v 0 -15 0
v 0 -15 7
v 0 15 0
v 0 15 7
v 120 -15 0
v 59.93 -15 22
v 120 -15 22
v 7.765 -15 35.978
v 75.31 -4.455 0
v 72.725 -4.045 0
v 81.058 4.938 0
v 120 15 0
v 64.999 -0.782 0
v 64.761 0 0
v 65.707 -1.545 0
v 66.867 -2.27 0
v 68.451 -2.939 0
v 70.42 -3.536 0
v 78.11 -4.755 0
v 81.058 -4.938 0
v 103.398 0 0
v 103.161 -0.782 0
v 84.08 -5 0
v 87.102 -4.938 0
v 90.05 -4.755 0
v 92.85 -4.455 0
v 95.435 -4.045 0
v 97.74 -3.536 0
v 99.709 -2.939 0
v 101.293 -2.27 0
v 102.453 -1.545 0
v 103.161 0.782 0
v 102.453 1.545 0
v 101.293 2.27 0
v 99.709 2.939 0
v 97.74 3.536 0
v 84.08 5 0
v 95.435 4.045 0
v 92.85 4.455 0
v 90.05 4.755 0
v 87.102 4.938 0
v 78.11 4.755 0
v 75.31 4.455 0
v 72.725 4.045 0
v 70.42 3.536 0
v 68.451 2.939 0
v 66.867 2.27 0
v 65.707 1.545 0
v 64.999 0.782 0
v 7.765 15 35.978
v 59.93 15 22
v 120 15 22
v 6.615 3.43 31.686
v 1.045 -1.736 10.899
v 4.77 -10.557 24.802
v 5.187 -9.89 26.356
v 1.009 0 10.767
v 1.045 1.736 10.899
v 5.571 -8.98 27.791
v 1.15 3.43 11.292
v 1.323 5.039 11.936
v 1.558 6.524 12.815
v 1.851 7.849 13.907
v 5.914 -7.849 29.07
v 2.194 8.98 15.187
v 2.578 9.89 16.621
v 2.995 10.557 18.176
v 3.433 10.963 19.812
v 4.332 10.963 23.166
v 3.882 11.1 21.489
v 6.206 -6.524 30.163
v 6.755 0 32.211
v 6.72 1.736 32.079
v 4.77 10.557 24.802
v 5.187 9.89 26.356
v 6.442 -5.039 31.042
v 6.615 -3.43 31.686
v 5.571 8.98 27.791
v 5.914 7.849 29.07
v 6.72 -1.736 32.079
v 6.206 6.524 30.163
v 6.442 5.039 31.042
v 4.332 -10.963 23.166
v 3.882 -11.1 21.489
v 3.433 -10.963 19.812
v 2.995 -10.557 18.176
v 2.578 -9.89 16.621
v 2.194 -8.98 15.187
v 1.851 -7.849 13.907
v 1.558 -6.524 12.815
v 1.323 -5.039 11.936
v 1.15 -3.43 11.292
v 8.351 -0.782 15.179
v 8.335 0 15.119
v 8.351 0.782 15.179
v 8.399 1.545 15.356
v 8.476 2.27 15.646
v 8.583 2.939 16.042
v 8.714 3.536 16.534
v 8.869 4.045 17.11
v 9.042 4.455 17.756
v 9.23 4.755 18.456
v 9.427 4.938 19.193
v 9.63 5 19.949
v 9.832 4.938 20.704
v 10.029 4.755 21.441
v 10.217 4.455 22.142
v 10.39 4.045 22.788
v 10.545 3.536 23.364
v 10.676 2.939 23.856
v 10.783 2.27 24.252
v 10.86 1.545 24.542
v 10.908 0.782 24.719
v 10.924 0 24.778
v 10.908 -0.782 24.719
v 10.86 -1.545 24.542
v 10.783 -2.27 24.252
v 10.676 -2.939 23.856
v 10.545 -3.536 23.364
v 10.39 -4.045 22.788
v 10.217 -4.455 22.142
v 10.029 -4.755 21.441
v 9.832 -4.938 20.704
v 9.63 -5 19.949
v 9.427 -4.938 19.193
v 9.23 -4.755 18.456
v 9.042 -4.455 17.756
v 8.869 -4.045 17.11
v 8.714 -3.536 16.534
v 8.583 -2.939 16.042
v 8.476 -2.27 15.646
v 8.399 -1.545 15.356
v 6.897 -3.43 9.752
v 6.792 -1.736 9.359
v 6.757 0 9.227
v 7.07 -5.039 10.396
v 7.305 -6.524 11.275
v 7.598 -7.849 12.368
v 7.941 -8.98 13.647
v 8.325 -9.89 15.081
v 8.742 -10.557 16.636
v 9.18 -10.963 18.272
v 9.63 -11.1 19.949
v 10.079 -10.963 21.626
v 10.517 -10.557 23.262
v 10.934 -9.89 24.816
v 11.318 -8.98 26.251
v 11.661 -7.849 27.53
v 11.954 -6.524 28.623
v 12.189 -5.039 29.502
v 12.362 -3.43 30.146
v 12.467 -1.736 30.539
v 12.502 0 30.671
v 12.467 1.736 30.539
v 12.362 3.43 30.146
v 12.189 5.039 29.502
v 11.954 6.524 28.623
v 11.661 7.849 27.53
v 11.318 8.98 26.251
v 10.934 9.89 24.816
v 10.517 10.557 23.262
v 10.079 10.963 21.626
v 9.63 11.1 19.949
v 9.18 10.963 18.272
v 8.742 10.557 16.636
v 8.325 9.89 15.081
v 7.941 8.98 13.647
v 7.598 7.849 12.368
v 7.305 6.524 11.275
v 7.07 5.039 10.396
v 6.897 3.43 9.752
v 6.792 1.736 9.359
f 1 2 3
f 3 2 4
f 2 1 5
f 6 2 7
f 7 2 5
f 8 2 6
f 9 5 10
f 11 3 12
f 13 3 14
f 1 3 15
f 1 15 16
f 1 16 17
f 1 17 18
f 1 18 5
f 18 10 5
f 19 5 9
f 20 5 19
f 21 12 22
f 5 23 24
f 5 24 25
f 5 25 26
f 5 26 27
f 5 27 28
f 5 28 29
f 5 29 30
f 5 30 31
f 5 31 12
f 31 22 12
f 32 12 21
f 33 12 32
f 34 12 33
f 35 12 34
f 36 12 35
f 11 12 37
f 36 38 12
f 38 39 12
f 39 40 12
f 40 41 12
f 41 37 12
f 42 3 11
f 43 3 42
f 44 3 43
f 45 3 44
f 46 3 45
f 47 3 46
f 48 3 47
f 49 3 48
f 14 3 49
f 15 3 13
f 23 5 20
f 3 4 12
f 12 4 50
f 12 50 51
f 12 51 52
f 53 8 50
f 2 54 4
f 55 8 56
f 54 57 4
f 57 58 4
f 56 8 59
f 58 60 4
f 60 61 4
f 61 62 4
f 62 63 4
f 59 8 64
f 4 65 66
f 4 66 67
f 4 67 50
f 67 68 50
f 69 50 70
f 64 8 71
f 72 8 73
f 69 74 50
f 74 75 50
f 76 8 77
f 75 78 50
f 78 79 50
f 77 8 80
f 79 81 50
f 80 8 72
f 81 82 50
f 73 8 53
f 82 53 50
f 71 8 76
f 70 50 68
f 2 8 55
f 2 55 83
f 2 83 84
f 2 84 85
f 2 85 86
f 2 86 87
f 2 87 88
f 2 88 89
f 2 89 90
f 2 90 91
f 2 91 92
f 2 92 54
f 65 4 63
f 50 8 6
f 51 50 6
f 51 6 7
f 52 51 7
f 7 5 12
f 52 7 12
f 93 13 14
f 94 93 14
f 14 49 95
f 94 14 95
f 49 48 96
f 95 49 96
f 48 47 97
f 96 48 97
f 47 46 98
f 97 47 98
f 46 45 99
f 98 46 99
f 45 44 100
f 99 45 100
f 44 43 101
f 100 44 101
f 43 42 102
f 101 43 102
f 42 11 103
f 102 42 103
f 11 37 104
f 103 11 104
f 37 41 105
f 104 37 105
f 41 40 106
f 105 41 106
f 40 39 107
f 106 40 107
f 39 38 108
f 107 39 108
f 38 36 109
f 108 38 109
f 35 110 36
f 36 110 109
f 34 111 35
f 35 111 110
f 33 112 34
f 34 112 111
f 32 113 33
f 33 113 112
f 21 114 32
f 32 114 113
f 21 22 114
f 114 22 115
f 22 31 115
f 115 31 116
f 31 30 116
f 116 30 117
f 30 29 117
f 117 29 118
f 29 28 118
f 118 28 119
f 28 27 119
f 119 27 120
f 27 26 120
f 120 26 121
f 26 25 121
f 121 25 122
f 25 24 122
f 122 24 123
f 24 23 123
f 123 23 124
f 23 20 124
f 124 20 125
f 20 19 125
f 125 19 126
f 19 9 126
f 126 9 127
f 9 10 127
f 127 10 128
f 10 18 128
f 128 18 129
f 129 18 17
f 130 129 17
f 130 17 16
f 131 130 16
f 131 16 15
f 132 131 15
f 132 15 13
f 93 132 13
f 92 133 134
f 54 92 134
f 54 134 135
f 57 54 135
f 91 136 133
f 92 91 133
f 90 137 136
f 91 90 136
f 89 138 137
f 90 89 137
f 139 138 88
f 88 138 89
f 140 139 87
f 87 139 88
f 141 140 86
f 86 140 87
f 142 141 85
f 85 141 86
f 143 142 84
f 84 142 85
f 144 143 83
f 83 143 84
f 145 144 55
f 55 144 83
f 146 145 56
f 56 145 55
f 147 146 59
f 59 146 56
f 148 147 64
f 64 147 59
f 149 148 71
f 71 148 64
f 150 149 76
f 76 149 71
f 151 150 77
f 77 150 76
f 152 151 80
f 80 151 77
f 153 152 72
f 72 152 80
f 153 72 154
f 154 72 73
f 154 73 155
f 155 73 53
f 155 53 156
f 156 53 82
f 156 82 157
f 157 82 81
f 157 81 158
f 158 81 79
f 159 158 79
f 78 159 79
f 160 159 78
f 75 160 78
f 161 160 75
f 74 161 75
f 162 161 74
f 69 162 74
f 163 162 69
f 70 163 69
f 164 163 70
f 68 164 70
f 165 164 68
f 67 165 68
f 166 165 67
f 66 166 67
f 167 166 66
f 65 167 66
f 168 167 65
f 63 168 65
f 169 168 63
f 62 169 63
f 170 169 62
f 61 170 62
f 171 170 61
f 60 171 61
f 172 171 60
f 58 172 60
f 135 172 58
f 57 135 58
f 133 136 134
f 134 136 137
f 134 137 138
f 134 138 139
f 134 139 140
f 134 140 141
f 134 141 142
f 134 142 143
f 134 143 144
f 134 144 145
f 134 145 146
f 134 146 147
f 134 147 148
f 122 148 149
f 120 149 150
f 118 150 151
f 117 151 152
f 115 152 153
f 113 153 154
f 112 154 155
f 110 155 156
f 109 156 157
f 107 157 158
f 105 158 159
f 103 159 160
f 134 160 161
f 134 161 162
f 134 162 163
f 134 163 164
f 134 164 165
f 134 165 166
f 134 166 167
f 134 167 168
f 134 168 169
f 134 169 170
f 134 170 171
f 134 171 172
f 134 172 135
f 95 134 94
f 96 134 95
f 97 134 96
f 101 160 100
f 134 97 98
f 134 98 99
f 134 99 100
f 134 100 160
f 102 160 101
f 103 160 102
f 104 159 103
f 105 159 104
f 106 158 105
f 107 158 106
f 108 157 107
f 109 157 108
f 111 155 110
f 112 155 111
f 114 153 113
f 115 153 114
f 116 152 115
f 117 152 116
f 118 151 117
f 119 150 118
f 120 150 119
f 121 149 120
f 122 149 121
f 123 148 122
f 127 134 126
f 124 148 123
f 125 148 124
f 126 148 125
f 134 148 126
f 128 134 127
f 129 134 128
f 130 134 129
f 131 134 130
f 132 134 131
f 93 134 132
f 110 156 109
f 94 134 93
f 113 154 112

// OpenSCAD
body_l = 80;
body_w = 30;
body_h = 15;

base_h = 7;

pocket_a = 15;
pocket_h = 30;
pocket_l = 60;

////////////////////////////////////
fn = 40;
pocket_hole_r = 5;
bearing_d = 6;
bearing_r = 11.1;
////////////////////////////////////

difference() { 
	pocket_housing();
	translate ([-10, -1 * body_w, -20]) cube (size = [body_l * 2, body_w * 2, 20]);
}

module pocket_housing(){
	translate ([0, body_w * -0.5, base_h]) 
		difference() { 
			union(){
				rotate (a = [0,pocket_a, 0]) cube (size = [pocket_l, body_w, pocket_h]) ;
				translate ([0, 0, -1 * base_h]) cube (size = [body_l, body_w, base_h]) ;
				translate ([40, 0, -1 * base_h]) cube (size = [body_l, body_w, body_h + base_h]) ;
			}
			rotate (a = [0,pocket_a, 0]){
				translate ([0, body_w * 0.5, pocket_h * 0.5]) rotate (a = [0,90,0]) {
					translate ([0, 0, -5]) cylinder (h = body_l + 100, r = pocket_hole_r, $fn = fn);
					translate ([0, 0, -0.05]) cylinder (h = bearing_d, r = bearing_r, $fn = fn);
				}
			}
	}
}
